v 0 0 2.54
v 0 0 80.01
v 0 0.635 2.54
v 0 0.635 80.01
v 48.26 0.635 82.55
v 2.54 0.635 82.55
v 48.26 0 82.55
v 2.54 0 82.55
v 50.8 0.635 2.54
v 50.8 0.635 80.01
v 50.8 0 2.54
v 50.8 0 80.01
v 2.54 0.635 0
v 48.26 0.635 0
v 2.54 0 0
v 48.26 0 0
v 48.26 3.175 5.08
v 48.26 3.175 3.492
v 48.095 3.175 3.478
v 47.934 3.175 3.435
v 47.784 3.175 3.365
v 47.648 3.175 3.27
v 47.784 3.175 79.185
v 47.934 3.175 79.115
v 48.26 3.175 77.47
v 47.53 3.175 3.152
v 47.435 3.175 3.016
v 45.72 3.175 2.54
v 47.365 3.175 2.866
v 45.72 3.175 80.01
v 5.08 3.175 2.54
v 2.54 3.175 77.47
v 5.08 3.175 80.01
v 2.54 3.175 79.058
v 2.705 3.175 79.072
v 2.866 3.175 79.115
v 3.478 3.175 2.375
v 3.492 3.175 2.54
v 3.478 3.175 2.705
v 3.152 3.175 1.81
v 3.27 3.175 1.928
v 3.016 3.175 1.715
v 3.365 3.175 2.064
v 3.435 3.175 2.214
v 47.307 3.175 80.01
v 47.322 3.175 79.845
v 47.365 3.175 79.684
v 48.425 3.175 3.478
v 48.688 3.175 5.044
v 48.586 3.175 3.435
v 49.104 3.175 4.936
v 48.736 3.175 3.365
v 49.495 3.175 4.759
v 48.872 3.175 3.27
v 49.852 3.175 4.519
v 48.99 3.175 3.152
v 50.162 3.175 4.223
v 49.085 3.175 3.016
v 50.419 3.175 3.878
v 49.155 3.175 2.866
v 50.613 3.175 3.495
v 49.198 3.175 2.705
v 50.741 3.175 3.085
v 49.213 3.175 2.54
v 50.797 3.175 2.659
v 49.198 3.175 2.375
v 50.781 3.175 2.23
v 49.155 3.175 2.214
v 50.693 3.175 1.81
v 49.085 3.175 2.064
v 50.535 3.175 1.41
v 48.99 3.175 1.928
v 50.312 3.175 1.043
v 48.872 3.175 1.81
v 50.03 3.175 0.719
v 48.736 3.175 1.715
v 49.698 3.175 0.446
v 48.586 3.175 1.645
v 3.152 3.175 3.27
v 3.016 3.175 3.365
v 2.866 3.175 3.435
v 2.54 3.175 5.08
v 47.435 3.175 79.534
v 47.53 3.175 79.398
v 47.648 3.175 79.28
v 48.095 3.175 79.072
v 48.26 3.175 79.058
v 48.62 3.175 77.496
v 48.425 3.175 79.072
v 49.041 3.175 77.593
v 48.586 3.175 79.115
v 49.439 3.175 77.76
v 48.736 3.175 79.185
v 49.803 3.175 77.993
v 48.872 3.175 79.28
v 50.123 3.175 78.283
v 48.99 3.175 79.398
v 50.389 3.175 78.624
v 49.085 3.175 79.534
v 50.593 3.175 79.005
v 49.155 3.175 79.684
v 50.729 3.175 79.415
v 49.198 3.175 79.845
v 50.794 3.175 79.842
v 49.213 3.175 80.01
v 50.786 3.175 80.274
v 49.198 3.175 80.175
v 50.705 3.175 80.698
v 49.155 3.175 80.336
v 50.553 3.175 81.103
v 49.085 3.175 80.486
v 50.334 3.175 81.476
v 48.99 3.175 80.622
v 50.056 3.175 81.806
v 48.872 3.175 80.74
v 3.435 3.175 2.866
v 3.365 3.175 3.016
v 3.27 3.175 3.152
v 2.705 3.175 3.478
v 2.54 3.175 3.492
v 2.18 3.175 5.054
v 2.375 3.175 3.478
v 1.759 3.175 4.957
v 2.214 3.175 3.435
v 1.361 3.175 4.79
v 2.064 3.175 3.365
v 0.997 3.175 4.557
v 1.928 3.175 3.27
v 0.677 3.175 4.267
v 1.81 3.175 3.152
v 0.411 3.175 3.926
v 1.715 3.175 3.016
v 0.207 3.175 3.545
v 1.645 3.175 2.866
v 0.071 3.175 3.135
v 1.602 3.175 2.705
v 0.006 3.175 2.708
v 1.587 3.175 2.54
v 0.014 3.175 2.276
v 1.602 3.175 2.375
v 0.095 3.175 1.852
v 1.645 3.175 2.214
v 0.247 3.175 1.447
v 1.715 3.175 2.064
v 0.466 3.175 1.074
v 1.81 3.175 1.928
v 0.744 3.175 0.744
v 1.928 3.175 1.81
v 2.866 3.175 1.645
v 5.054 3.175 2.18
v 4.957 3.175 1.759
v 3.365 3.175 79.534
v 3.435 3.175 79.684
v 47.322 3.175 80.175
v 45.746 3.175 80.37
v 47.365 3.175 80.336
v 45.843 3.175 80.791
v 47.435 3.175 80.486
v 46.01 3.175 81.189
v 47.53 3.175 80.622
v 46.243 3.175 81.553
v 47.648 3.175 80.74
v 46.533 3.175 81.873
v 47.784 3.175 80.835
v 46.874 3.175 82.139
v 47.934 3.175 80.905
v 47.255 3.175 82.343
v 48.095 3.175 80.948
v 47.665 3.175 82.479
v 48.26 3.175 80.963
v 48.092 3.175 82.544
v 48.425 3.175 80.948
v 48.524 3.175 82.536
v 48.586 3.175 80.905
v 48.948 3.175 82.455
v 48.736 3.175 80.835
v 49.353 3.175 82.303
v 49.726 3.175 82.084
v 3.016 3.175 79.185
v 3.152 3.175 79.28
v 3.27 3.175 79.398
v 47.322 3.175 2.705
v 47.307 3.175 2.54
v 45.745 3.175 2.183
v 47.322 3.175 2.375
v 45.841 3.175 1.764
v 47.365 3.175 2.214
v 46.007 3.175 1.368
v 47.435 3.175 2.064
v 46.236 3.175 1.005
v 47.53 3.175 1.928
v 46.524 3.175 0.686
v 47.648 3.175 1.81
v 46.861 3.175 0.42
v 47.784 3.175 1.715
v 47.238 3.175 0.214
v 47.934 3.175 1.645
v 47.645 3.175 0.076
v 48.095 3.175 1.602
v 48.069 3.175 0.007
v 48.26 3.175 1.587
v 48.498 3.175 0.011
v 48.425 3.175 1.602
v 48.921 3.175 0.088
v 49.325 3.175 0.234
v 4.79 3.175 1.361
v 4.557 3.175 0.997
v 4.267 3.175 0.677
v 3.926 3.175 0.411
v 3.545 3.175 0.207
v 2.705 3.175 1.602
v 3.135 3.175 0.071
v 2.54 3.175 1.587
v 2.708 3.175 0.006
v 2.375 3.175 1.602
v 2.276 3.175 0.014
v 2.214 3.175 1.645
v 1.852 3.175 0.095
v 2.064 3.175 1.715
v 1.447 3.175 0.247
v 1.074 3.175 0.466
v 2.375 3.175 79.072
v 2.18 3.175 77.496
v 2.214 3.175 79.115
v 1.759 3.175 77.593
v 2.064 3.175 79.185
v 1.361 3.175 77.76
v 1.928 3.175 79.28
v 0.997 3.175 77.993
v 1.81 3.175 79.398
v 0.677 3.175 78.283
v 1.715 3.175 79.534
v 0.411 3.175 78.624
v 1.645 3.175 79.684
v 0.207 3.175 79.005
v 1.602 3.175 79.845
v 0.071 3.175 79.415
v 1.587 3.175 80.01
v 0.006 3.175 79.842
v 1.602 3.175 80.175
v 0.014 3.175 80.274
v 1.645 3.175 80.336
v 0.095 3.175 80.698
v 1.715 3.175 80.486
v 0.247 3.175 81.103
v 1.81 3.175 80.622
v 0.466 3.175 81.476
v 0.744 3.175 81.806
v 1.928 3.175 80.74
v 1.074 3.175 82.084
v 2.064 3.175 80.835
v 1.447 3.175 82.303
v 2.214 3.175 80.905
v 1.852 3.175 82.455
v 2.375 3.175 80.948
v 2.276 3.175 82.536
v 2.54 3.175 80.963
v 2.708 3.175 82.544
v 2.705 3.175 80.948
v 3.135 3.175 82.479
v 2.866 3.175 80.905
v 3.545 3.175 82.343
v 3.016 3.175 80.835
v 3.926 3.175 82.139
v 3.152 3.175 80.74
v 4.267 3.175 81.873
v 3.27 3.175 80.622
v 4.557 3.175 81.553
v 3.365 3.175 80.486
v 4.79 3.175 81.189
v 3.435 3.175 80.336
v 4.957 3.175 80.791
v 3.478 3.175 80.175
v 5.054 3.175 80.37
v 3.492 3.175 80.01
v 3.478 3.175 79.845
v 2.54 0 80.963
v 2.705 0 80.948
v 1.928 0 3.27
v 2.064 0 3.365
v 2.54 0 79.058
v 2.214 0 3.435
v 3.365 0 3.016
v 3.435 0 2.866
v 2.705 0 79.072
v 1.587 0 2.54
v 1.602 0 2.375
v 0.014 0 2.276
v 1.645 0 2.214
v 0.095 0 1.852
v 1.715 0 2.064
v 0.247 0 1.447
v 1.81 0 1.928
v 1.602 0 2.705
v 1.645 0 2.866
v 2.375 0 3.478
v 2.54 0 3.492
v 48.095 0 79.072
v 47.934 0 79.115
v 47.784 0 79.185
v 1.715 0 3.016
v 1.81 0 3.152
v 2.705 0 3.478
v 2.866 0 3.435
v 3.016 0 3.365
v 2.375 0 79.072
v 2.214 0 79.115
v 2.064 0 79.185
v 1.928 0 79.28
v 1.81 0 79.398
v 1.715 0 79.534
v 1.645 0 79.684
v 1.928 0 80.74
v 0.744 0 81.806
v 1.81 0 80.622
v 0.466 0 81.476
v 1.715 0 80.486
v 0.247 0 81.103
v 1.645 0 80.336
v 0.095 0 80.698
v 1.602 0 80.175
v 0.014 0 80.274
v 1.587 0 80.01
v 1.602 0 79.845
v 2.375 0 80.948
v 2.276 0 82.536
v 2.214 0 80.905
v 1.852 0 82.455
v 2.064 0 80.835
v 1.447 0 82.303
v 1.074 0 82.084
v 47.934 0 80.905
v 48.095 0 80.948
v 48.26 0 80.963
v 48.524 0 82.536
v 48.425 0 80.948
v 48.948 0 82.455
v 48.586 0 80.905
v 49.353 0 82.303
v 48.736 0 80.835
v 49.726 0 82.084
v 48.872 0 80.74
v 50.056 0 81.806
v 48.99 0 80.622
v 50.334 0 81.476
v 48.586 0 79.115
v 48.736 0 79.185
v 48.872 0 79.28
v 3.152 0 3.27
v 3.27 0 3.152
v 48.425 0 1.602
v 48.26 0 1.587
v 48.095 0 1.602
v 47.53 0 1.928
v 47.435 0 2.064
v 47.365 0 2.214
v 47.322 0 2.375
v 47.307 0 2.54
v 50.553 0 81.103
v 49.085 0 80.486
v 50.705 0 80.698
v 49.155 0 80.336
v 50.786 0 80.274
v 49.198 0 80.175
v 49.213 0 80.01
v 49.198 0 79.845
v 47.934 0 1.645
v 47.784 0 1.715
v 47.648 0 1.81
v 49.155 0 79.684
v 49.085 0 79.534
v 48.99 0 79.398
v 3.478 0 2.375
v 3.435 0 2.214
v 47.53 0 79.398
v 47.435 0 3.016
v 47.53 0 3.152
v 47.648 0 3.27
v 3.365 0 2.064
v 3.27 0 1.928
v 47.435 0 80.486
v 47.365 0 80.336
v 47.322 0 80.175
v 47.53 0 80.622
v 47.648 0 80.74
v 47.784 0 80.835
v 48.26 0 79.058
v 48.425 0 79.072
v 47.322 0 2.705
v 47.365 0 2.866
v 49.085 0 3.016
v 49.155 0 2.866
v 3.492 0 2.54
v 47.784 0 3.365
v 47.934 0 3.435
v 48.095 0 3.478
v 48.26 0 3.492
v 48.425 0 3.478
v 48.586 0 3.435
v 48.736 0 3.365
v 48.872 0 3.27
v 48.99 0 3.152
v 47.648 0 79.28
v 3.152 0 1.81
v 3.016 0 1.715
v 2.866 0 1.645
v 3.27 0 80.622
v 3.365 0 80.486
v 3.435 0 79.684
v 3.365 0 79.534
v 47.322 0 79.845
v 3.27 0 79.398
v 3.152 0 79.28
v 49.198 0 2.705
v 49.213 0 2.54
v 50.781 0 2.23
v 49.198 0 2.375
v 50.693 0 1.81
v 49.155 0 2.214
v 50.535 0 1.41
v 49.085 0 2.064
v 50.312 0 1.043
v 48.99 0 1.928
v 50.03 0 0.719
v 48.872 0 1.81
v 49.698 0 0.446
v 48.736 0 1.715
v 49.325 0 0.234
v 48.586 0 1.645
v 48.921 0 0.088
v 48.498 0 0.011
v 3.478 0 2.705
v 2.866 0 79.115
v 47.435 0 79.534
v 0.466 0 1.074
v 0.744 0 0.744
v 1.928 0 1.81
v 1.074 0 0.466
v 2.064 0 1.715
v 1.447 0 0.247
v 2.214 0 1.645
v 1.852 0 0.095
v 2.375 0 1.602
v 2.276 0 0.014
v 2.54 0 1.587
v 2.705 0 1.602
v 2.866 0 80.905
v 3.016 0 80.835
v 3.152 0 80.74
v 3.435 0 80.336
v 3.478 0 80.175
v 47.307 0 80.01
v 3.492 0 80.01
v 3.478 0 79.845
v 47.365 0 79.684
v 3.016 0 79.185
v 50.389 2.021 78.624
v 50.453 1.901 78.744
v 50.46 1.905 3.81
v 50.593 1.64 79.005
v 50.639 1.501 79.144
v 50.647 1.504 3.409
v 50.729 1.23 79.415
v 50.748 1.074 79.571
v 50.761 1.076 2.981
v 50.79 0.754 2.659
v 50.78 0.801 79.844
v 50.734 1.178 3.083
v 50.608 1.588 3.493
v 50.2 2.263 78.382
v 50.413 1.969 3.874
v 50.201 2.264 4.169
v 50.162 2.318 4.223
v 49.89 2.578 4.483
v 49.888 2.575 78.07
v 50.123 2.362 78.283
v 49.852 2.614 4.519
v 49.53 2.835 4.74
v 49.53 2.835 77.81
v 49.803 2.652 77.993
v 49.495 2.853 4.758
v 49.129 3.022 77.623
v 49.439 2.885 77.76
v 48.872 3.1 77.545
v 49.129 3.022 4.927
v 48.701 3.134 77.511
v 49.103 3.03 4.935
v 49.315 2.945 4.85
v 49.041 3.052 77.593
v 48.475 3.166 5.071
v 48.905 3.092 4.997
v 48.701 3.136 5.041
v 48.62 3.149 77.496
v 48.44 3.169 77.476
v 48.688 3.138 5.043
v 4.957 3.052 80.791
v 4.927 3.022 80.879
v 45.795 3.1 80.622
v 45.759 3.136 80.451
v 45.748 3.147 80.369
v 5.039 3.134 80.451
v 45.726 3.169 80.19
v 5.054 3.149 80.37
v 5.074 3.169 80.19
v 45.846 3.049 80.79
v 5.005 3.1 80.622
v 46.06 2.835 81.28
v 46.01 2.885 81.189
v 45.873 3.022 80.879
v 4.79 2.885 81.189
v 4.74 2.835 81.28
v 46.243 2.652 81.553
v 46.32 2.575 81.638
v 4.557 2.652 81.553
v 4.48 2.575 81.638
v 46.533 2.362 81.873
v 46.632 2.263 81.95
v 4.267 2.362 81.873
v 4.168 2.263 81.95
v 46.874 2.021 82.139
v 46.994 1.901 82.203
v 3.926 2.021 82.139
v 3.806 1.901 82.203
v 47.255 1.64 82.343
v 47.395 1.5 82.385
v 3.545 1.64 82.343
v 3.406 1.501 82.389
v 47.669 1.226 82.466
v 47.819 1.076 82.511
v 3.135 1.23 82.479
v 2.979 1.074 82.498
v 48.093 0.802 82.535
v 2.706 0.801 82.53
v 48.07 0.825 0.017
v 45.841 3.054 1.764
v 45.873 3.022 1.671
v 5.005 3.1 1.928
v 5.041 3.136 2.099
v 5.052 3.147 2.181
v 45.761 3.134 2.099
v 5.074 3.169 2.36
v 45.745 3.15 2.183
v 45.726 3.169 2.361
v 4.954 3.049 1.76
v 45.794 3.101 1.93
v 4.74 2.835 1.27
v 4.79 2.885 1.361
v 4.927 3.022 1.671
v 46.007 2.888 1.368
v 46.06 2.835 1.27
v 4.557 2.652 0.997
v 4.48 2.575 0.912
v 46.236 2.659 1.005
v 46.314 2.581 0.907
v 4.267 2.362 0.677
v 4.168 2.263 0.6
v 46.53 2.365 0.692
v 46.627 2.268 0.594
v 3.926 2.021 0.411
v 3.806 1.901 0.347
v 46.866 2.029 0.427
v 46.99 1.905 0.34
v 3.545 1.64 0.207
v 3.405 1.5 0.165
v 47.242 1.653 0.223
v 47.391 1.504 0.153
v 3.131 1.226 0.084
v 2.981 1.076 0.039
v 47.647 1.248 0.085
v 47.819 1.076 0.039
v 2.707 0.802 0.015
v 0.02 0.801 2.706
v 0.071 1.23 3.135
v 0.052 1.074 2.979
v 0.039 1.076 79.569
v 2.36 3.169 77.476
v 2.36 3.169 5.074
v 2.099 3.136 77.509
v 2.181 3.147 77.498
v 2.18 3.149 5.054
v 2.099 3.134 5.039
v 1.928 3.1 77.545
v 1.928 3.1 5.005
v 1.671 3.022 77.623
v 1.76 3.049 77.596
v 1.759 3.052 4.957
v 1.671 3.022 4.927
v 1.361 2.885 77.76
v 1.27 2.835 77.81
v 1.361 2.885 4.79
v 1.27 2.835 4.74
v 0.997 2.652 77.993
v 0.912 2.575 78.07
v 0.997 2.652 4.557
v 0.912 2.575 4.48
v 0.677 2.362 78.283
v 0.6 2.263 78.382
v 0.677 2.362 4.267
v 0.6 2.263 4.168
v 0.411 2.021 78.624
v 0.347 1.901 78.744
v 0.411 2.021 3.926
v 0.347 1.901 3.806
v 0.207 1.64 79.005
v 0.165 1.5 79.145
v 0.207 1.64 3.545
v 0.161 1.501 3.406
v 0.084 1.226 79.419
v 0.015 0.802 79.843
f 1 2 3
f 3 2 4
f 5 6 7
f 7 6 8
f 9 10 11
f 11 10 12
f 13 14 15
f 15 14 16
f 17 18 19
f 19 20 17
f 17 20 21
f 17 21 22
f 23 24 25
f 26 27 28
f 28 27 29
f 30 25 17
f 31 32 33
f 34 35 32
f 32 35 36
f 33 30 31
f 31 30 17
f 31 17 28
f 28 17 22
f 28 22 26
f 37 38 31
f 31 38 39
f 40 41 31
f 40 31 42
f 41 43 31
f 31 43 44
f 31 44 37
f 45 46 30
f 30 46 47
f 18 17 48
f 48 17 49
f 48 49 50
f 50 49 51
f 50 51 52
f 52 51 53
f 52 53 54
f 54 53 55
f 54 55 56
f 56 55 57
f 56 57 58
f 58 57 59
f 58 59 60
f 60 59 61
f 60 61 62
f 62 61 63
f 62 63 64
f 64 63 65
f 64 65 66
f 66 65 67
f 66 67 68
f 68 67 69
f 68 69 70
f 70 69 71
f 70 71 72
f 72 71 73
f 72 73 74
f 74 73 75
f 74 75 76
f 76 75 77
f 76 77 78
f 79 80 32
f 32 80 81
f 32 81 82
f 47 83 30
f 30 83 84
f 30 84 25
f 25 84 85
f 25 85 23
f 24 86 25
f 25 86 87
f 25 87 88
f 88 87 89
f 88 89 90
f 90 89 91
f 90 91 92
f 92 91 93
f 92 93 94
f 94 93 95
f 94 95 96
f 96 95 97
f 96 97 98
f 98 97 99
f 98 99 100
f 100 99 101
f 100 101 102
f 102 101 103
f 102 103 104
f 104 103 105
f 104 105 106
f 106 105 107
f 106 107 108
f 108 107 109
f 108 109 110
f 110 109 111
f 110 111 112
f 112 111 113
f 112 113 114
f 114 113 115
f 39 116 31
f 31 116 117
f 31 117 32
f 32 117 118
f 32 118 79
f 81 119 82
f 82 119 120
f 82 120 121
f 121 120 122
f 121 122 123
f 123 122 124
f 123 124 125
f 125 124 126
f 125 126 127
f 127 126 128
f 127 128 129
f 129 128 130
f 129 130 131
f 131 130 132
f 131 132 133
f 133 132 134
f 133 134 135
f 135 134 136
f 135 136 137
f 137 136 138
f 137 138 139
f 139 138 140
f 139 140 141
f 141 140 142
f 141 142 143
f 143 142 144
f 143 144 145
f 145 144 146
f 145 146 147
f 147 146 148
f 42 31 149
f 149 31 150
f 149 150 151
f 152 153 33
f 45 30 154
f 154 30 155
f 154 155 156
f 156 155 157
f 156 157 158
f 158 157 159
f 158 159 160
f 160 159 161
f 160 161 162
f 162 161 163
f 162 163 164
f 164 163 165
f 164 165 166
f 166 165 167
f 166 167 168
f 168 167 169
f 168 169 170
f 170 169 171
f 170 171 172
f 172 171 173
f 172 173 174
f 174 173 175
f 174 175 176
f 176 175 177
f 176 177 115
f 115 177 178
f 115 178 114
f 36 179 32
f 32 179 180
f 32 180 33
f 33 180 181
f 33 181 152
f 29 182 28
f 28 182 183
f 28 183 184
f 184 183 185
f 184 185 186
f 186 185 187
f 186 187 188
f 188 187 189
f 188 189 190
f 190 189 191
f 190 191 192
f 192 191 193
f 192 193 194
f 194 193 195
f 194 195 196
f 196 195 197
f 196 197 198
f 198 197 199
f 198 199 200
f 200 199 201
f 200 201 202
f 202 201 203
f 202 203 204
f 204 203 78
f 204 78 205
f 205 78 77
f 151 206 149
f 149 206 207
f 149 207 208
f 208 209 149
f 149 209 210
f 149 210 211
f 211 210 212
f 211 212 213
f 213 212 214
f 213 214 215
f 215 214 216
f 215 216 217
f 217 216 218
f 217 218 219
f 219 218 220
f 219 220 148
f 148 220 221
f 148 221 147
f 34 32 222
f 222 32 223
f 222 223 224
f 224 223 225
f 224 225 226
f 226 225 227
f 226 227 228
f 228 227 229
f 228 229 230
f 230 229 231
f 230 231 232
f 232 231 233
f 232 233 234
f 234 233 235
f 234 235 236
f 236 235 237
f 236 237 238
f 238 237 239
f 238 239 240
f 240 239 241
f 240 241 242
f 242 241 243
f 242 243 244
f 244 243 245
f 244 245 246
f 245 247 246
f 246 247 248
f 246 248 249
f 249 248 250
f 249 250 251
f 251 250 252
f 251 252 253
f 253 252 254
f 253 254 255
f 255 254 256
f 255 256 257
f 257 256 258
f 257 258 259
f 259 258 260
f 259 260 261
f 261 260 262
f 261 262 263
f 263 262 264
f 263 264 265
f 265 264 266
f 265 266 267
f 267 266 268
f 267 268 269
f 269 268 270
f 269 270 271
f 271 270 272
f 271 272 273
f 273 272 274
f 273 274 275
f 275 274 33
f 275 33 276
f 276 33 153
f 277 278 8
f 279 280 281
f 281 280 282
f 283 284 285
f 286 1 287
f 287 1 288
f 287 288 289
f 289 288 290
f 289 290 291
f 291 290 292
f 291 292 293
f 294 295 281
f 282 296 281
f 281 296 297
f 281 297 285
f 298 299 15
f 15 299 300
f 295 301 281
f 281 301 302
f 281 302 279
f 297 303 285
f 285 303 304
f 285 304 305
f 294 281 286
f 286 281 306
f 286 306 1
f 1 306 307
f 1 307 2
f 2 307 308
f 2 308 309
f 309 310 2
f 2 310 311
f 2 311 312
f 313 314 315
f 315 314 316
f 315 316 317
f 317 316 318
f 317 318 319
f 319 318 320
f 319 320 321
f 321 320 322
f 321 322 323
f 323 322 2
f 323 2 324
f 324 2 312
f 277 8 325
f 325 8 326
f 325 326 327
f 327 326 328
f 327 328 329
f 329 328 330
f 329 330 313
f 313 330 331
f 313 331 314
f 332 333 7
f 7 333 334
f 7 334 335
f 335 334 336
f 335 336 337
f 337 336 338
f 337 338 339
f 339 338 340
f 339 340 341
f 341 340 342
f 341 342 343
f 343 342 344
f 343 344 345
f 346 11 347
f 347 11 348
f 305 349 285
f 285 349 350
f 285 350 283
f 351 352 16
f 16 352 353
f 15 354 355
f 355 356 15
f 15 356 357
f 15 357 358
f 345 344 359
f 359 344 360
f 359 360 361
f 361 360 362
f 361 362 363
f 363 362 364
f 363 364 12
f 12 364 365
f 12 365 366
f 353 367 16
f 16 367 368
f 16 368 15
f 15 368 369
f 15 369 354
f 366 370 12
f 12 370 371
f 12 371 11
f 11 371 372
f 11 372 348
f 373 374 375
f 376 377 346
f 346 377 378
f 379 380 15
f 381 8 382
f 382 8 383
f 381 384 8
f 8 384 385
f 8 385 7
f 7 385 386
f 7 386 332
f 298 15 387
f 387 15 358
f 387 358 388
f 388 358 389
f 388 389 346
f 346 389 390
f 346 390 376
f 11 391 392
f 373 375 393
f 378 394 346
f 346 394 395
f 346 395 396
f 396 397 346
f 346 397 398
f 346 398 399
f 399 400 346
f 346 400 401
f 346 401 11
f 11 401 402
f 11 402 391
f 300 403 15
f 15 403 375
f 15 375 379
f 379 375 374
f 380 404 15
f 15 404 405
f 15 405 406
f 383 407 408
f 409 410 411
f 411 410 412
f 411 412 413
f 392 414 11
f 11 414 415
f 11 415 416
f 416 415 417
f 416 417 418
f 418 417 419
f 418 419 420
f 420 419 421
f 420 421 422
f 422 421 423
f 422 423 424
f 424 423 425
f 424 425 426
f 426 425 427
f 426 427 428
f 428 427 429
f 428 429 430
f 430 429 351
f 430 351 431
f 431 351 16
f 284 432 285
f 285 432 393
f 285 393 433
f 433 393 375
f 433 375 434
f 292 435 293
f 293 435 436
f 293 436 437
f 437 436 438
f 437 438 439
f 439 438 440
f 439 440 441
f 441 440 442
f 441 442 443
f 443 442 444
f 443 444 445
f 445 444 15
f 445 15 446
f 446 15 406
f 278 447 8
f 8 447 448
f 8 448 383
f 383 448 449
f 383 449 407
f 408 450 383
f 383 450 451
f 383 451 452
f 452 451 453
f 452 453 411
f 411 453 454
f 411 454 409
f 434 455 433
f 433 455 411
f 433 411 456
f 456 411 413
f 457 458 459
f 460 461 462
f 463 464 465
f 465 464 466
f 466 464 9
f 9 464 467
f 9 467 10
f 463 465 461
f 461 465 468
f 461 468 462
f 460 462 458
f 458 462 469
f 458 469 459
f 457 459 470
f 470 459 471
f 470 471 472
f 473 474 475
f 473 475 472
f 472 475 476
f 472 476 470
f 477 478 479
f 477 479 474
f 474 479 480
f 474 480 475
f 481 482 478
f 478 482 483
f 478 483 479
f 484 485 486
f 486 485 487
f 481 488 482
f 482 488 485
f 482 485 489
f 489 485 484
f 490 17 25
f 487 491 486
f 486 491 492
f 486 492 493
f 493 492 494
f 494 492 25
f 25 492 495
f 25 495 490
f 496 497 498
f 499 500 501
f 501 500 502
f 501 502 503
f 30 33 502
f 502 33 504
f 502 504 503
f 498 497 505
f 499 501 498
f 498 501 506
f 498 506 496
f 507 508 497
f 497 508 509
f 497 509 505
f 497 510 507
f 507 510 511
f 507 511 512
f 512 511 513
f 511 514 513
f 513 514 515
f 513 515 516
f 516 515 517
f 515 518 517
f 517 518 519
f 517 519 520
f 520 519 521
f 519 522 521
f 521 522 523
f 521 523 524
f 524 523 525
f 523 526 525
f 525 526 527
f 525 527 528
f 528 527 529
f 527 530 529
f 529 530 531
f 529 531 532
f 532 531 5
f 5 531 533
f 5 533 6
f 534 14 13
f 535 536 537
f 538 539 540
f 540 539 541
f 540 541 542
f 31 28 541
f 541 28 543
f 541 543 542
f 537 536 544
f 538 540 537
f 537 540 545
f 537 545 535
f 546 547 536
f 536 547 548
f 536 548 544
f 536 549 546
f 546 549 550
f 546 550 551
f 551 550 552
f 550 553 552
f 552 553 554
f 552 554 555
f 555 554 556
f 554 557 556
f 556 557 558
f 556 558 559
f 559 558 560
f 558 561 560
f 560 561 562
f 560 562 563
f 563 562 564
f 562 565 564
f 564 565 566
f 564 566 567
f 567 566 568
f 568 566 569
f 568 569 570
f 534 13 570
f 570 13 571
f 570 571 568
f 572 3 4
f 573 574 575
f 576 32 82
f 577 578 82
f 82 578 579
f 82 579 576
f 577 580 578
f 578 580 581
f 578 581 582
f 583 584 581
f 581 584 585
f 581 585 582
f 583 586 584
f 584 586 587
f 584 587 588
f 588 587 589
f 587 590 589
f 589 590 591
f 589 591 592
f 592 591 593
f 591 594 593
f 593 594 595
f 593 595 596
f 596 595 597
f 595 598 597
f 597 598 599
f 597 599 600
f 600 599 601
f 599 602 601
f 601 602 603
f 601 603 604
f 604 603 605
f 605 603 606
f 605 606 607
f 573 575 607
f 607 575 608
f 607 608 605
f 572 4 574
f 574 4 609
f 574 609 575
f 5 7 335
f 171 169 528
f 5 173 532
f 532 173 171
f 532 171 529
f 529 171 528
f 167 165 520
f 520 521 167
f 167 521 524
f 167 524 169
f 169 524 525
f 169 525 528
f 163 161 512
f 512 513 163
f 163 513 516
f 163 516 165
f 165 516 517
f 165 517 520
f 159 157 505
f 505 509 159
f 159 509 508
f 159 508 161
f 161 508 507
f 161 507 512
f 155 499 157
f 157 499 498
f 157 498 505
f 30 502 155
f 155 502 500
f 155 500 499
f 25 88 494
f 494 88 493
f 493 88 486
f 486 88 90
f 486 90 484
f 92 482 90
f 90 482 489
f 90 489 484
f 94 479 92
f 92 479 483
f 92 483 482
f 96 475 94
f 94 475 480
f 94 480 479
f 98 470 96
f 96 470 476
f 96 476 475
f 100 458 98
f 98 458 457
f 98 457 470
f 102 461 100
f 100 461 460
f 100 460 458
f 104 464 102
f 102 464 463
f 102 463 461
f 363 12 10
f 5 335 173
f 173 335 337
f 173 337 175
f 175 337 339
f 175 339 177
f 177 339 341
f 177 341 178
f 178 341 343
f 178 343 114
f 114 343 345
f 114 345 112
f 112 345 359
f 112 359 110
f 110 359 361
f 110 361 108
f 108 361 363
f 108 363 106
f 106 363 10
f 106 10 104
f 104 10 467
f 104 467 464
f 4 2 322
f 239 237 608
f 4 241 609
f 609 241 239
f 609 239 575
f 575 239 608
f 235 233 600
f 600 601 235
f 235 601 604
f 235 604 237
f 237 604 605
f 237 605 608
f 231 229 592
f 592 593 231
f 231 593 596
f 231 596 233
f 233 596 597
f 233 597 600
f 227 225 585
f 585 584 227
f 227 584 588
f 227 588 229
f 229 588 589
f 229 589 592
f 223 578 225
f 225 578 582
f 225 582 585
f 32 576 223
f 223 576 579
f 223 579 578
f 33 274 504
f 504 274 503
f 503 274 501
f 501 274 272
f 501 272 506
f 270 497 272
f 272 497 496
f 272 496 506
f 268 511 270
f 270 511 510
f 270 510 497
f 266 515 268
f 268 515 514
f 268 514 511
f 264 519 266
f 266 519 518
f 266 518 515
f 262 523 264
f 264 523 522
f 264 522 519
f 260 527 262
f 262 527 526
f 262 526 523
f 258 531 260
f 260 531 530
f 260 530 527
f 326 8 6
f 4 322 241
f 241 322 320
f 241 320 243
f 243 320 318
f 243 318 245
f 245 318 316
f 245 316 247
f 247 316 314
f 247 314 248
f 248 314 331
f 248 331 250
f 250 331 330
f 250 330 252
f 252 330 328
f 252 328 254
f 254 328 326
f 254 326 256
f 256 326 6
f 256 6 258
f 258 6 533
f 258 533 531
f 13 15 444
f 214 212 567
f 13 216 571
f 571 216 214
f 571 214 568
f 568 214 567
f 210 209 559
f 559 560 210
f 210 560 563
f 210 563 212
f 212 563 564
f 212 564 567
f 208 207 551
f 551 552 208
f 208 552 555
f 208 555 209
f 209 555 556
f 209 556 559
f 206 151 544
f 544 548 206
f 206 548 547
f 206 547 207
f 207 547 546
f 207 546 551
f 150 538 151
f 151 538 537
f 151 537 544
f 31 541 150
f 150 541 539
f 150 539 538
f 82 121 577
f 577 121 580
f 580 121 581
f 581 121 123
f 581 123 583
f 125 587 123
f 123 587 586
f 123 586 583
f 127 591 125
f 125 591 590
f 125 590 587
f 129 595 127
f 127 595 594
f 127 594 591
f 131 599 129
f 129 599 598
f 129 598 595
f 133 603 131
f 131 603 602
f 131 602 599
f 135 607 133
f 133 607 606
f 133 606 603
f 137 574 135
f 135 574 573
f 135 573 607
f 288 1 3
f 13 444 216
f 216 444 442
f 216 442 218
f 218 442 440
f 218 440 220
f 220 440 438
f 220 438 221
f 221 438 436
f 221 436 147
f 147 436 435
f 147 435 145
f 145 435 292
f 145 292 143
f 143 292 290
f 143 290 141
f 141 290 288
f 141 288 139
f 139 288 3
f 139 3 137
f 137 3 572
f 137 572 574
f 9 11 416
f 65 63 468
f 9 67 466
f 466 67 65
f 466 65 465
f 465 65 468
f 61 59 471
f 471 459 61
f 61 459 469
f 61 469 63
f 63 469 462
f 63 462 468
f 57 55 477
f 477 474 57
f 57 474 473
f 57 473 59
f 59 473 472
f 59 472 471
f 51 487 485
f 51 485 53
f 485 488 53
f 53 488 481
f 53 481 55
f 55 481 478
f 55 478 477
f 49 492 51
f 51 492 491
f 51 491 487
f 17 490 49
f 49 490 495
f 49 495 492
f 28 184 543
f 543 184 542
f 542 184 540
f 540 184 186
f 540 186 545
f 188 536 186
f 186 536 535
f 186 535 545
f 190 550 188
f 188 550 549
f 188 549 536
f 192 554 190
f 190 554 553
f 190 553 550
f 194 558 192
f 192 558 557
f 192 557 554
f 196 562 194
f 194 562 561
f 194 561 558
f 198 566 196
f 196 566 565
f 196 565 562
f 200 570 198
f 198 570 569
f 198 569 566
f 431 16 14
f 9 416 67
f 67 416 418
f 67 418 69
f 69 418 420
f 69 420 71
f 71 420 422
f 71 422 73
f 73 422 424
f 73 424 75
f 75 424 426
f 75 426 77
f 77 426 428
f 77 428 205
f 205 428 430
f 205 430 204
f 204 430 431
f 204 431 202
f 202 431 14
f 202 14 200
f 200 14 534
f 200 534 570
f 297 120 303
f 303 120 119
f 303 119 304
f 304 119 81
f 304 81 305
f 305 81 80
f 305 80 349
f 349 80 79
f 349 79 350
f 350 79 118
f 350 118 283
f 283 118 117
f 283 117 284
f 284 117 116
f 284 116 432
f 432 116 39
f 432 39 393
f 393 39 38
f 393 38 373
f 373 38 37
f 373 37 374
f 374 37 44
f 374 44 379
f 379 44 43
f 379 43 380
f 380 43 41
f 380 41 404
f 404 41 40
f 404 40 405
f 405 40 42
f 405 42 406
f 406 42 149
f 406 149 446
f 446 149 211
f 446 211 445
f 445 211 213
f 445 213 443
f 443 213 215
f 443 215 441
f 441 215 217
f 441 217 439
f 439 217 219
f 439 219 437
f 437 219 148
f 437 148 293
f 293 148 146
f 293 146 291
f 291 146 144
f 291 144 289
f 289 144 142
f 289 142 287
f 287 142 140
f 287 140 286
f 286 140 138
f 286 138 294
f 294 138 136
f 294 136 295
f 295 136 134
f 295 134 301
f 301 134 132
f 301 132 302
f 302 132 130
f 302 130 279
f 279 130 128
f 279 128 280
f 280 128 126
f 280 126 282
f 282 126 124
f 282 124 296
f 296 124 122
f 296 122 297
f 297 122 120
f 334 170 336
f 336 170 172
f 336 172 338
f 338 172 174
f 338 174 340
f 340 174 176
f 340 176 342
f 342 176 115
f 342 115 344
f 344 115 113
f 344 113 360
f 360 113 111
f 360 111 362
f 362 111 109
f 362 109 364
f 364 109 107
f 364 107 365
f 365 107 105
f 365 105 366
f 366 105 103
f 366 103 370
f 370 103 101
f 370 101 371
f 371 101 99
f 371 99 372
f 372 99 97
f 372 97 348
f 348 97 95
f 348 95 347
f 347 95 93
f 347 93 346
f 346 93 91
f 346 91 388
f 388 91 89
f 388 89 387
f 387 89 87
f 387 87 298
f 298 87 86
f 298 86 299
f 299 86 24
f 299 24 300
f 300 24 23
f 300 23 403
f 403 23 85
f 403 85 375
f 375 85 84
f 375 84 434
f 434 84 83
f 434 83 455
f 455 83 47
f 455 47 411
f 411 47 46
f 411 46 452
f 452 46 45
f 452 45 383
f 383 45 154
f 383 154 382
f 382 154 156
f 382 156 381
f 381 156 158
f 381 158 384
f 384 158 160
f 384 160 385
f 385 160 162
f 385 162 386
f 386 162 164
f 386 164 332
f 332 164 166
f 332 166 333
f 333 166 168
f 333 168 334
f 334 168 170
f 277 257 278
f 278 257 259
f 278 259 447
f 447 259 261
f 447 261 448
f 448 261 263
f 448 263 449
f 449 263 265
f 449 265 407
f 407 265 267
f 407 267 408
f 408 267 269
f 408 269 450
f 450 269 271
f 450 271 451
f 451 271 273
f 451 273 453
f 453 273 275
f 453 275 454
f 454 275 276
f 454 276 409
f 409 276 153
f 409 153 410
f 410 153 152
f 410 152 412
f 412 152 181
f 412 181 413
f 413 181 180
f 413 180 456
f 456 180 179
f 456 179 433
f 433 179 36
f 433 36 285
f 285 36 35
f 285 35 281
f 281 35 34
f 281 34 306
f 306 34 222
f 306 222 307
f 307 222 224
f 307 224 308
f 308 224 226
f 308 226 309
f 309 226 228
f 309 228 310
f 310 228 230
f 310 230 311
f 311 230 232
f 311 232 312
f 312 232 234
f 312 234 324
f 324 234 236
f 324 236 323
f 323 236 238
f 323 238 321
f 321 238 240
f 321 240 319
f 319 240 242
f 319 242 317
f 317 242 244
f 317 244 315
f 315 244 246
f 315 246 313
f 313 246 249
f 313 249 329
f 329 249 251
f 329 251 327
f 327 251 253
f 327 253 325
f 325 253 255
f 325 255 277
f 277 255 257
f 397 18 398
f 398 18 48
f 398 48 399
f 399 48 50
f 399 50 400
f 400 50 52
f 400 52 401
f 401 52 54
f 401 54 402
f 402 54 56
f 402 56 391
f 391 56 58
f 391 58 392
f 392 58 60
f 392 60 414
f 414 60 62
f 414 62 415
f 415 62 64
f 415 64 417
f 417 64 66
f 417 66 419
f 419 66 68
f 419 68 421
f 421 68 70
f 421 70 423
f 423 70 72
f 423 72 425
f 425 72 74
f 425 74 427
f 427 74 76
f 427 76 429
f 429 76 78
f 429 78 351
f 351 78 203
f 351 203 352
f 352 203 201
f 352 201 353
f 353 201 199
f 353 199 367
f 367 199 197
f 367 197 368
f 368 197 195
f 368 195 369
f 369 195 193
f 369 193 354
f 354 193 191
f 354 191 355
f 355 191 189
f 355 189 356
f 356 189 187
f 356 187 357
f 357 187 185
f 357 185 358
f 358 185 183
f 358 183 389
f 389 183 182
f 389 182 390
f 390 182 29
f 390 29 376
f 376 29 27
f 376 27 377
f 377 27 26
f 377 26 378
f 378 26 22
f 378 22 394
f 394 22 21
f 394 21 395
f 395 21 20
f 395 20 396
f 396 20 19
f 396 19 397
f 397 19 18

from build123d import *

# Parameters (mm, degrees)
SKETCH1_W           = 50.8
SKETCH1_H           = 82.55
BOSS_EXTRUDE1_DEPTH = 3.175
FILLET1_R           = 2.54
SKETCH2_R           = 2.54
CUT_EXTRUDE1_DEPTH  = 4.175
SKETCH2_2_R         = 2.54
BOSS_EXTRUDE2_DEPTH = 3.175
SKETCH3_R           = 0.9525
CUT_EXTRUDE2_DEPTH  = 4.175


with BuildPart() as part:
    # Sketch1 → Boss-Extrude1 (new body)
    with BuildSketch(Plane(origin=(0, 0, 0), x_dir=(1, 0, 0), z_dir=(0, 1, 0))):
        with Locations((25.4, -41.275)):
            Rectangle(SKETCH1_W, SKETCH1_H)
    extrude(amount=BOSS_EXTRUDE1_DEPTH)

    # Fillet1
    fillet1_edges = [part.edges().sort_by_distance(p)[0] for p in [
        (50.8, 3.175, 41.275),
        (25.4, 3.175, 0),
        (0, 3.175, 41.275),
        (25.4, 3.175, 82.55),
        (0, 1.5875, 0),
        (50.8, 1.5875, 0),
        (50.8, 1.5875, 82.55),
        (0, 1.5875, 82.55),
    ]]
    fillet(fillet1_edges, radius=FILLET1_R)

    # Sketch2 → Cut-Extrude1 (cut, through all)
    with BuildSketch(Plane(origin=(0, 3.175, 0), x_dir=(1, 0, 0), z_dir=(0, 1, 0))):
        with Locations((48.26, -80.01)):
            Circle(SKETCH2_R)
        with Locations((2.54, -80.01)):
            Circle(SKETCH2_R)
        with Locations((2.54, -2.54)):
            Circle(SKETCH2_R)
        with Locations((48.26, -2.54)):
            Circle(SKETCH2_R)
    extrude(amount=-CUT_EXTRUDE1_DEPTH, mode=Mode.SUBTRACT)

    # Sketch2<2> → Boss-Extrude2 (add)
    with BuildSketch(Plane(origin=(0, 3.175, 0), x_dir=(1, 0, 0), z_dir=(0, 1, 0))):
        with Locations((48.26, -80.01)):
            Circle(SKETCH2_2_R)
        with Locations((2.54, -80.01)):
            Circle(SKETCH2_2_R)
        with Locations((2.54, -2.54)):
            Circle(SKETCH2_2_R)
        with Locations((48.26, -2.54)):
            Circle(SKETCH2_2_R)
    extrude(amount=-BOSS_EXTRUDE2_DEPTH)

    # Sketch3 → Cut-Extrude2 (cut, through all)
    with BuildSketch(Plane(origin=(0, 3.175, 0), x_dir=(1, 0, 0), z_dir=(0, 1, 0))):
        with Locations((2.54, -2.54)):
            Circle(SKETCH3_R)
        with Locations((48.26, -2.54)):
            Circle(SKETCH3_R)
        with Locations((2.54, -80.01)):
            Circle(SKETCH3_R)
        with Locations((48.26, -80.01)):
            Circle(SKETCH3_R)
    extrude(amount=-CUT_EXTRUDE2_DEPTH, mode=Mode.SUBTRACT)


solid = part.part
